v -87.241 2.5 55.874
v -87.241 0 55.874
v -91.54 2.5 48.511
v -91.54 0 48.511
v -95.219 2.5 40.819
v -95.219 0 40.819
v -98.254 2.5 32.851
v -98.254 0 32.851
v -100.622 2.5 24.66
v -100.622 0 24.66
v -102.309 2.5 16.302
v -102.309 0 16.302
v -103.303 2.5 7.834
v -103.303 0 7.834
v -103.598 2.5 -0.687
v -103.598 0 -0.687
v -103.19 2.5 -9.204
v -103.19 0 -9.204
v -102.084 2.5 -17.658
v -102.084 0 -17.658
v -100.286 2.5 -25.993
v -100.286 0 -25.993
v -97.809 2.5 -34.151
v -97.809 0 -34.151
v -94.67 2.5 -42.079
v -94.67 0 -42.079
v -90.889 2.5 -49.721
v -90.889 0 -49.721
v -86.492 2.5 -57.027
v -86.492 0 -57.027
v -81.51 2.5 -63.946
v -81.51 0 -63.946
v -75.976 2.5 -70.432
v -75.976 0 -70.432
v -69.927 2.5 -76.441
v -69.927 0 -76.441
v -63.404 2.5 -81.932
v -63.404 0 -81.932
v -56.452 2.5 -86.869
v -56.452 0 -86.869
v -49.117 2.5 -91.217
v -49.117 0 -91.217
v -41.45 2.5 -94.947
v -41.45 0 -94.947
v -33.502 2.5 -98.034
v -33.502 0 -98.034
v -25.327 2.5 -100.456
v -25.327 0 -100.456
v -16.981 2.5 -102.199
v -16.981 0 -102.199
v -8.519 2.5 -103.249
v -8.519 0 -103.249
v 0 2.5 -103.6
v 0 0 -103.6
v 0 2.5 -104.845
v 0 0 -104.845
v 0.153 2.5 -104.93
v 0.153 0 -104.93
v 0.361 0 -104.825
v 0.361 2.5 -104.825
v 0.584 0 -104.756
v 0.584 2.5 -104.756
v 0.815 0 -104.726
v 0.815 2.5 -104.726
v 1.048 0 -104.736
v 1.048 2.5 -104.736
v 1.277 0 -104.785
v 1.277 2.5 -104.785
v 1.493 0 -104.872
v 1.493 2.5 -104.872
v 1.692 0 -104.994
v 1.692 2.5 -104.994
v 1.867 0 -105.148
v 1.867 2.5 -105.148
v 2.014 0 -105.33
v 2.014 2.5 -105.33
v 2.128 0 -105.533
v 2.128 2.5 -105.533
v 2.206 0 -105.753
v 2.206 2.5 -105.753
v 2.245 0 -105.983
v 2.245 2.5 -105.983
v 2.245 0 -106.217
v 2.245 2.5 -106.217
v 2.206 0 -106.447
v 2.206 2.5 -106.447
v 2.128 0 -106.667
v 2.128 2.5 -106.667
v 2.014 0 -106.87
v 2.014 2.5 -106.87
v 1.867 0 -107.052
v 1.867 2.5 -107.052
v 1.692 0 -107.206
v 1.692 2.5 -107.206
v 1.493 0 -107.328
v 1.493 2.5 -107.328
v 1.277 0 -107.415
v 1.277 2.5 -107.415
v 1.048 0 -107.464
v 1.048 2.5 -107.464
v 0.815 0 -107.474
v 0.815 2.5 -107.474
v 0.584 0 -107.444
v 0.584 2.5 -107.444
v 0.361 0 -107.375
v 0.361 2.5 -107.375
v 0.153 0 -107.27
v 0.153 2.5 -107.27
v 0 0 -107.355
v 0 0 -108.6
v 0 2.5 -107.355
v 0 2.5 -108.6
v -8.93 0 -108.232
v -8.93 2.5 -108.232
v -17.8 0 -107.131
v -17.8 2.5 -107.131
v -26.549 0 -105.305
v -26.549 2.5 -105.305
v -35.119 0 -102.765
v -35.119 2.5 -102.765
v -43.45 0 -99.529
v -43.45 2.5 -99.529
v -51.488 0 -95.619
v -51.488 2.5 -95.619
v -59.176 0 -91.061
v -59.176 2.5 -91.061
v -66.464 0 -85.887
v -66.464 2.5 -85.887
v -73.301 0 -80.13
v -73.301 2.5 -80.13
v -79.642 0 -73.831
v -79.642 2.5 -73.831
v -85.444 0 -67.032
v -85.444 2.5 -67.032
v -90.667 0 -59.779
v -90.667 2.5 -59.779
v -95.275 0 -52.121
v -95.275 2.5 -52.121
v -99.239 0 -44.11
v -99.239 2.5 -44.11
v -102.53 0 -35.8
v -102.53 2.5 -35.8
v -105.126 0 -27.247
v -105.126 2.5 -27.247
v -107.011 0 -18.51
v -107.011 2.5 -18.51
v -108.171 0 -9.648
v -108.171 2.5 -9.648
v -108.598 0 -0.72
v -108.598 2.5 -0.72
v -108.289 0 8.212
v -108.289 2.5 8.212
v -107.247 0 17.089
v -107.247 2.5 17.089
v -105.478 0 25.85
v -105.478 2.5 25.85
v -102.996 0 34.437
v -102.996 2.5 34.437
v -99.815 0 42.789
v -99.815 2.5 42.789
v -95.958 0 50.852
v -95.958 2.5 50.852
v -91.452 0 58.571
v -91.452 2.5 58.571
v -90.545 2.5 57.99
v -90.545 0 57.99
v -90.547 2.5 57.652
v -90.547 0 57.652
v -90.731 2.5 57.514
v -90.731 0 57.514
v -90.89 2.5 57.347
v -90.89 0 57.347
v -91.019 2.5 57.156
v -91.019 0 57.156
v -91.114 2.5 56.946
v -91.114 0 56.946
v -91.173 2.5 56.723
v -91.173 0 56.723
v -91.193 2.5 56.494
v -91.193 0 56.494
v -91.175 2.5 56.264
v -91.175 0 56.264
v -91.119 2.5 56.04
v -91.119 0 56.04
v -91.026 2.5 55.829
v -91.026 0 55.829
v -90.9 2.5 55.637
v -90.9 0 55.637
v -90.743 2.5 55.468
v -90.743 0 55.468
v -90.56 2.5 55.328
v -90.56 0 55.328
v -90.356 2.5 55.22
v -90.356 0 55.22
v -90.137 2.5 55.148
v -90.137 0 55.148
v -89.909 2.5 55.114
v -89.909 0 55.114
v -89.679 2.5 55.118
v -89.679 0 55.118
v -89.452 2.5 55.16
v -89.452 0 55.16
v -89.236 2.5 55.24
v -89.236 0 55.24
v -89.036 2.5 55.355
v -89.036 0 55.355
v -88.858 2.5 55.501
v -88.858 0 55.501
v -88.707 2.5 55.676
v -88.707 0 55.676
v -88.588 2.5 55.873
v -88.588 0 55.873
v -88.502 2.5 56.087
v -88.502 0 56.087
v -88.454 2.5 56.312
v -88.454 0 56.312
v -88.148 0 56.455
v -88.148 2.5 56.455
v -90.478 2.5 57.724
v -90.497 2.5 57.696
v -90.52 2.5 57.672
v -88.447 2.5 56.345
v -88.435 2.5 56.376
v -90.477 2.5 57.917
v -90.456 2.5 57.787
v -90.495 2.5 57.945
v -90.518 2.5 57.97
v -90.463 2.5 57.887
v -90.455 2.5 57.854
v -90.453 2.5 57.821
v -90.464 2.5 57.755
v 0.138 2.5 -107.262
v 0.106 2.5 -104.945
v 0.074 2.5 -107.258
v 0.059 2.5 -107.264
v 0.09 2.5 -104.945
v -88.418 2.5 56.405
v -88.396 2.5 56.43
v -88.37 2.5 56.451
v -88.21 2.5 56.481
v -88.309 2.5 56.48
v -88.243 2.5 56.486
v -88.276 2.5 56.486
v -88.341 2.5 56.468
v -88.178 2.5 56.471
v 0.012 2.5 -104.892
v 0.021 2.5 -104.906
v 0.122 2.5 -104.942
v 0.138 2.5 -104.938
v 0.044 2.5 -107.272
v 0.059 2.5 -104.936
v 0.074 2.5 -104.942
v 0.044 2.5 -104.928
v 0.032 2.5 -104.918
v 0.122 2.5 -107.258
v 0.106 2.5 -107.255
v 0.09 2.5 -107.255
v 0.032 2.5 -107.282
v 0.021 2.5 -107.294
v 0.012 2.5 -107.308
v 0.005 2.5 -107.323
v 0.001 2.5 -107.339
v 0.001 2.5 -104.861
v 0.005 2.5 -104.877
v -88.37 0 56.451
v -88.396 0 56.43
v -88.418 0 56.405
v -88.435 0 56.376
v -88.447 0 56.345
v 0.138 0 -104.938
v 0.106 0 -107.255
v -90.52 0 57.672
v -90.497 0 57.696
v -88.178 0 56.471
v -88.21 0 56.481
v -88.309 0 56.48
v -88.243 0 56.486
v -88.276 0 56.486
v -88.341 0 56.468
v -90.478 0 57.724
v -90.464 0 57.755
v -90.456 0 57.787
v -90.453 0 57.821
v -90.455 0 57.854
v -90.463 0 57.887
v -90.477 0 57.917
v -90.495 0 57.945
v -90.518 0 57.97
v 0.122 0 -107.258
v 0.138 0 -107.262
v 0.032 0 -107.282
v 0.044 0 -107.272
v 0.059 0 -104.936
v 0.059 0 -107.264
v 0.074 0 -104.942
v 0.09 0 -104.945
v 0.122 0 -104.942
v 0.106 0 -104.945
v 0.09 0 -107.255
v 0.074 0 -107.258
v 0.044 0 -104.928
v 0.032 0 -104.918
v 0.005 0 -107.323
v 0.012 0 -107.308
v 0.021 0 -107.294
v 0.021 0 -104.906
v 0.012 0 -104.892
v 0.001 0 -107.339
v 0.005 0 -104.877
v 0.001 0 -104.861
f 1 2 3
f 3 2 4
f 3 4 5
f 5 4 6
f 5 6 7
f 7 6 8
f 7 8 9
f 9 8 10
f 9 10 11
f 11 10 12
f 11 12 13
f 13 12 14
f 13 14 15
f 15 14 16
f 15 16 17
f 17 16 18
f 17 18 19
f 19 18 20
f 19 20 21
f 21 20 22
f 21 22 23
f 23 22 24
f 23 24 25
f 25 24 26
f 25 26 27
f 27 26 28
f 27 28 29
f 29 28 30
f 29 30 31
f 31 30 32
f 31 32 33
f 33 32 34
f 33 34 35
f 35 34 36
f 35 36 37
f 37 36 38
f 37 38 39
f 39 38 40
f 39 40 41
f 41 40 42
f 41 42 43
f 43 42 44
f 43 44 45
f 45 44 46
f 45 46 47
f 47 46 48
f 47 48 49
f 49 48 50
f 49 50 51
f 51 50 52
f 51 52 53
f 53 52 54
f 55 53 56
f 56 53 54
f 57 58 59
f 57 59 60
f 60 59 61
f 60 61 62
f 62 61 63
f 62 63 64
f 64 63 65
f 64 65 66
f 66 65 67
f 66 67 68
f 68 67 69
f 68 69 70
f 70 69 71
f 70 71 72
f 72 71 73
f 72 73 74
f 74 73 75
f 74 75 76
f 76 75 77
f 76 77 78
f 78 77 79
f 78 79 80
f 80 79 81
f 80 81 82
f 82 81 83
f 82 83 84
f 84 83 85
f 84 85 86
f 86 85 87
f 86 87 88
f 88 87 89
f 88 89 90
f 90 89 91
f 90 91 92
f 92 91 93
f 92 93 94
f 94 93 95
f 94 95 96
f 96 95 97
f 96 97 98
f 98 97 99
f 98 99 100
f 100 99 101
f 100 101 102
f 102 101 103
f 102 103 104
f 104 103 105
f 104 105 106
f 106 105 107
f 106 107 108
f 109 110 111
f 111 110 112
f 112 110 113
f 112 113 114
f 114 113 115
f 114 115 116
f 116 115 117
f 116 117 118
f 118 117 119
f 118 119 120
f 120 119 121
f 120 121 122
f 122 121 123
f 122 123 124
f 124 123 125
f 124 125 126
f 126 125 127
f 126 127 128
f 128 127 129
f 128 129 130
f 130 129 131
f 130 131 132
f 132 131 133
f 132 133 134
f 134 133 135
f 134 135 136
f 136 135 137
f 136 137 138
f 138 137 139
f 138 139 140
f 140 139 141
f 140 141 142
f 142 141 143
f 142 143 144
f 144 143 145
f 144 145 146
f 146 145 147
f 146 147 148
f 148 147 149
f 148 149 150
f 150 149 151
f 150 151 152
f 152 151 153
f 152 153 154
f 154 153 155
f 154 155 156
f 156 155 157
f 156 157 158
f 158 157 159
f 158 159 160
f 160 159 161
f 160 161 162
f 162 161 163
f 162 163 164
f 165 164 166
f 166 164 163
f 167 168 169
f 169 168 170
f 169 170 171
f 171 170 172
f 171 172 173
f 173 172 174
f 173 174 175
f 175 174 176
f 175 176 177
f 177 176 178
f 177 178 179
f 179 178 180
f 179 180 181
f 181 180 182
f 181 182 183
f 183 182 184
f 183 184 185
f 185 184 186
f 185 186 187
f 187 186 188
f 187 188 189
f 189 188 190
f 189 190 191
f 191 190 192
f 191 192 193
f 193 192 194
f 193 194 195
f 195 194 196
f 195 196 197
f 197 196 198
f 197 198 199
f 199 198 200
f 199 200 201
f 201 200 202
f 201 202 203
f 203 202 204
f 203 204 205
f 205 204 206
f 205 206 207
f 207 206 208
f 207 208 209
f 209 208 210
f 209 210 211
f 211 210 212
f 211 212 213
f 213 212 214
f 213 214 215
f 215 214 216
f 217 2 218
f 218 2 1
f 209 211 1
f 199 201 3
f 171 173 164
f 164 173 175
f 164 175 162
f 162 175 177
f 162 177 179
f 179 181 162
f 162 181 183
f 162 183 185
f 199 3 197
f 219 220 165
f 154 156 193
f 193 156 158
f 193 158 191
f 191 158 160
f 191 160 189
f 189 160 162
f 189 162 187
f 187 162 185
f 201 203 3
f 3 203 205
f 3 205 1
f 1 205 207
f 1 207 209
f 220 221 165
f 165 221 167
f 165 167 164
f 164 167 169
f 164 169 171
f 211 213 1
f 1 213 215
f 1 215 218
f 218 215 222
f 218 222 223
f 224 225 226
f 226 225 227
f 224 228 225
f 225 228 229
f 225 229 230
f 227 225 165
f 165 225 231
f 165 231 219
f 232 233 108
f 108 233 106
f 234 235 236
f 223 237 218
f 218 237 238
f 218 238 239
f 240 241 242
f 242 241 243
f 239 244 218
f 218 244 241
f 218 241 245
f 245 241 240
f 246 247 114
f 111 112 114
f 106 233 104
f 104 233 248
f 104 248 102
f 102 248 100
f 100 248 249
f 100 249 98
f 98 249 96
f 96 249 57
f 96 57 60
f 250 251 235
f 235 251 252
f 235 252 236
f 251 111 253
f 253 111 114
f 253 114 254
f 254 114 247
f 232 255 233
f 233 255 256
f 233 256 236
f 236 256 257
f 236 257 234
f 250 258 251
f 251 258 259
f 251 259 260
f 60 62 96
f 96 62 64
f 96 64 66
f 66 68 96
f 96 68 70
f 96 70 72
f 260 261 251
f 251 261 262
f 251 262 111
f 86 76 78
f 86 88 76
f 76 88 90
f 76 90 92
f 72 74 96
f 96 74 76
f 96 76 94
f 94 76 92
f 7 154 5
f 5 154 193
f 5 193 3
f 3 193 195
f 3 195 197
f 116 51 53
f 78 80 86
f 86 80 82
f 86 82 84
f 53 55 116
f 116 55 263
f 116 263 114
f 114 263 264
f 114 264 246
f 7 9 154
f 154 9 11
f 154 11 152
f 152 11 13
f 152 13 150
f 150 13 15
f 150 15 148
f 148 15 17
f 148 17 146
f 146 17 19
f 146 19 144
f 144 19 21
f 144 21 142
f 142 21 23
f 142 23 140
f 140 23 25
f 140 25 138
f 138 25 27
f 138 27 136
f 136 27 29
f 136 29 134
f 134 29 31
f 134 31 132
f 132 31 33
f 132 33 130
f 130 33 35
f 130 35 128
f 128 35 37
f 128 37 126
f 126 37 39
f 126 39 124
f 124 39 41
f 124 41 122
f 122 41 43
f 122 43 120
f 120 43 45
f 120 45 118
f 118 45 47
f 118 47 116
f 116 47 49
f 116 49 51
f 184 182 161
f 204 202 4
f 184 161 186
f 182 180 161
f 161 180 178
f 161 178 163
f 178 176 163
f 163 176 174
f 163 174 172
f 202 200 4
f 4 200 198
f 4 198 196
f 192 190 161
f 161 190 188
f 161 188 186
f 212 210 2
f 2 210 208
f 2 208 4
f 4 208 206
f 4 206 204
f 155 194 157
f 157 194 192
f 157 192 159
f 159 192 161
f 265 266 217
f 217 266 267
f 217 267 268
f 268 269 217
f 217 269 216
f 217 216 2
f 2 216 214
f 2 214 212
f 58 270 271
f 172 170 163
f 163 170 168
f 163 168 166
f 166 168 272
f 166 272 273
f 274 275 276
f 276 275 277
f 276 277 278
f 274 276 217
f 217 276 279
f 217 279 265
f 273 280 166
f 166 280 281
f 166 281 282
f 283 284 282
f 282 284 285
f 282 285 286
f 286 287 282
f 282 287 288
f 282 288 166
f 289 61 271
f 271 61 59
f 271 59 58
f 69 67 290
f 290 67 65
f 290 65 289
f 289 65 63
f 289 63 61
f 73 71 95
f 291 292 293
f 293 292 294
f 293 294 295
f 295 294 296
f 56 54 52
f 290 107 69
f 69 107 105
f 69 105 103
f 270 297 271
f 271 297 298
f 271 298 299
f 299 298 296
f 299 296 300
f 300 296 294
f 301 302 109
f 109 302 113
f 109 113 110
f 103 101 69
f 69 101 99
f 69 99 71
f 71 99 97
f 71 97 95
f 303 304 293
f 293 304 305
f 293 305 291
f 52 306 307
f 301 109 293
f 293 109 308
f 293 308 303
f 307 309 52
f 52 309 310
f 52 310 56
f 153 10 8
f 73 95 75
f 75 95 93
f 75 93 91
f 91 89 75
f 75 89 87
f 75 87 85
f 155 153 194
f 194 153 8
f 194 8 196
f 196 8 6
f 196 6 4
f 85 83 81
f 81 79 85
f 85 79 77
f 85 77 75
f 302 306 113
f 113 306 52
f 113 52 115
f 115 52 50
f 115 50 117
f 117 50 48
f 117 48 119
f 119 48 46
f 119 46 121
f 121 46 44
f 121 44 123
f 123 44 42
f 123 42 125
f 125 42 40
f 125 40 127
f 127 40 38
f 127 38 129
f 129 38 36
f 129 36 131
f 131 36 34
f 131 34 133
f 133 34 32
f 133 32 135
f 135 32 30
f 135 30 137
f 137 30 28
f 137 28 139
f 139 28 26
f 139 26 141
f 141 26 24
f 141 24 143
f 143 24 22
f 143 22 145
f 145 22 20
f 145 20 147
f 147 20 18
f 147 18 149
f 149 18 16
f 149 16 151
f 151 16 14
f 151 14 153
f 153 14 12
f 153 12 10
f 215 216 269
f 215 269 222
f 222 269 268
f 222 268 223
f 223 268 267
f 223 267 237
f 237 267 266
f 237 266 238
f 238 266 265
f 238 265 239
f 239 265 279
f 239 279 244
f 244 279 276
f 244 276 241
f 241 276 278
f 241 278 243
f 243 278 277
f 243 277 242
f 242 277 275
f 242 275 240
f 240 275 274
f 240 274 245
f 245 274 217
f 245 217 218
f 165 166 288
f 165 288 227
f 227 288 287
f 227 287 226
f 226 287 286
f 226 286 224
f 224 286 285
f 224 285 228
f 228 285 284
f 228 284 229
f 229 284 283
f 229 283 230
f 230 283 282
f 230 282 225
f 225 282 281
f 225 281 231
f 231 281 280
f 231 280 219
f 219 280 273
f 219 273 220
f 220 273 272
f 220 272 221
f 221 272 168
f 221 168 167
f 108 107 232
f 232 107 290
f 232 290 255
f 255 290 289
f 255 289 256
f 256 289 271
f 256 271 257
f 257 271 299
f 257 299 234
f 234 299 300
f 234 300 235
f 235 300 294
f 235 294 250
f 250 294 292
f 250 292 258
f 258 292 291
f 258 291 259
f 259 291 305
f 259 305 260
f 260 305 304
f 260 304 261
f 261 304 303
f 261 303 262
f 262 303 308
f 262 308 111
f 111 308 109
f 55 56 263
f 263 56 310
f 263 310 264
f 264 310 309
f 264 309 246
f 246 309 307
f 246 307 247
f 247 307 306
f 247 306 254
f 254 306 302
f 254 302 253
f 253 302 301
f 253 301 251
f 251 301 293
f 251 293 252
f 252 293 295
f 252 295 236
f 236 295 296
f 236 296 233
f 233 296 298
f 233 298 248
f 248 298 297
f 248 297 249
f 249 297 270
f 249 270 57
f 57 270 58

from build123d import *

# Parameters (mm, degrees)
BOSS_EXTRUDE1_DEPTH = 2.5
FILLET1_R           = 0.2
FILLET2_R           = 0.1


with BuildPart() as part:
    # Sketch1 → Boss-Extrude1 (new body)
    with BuildSketch(Plane(origin=(0, 0, 0), x_dir=(1, 0, 0), z_dir=(0, 1, 0))):
        with BuildLine():
            Line((0, 103.6), (0, 105.039339828))
            ThreePointArc((0, 105.039339828), (2.25, 106.1), (0, 107.160660172))
            Line((0, 107.160660172), (0, 108.6))
            ThreePointArc((0, 108.6), (-95.275317005, 52.120763325), (-91.451606784, -58.571013451))
            Line((-91.451606784, -58.571013451), (-90.239544721, -57.794737277))
            ThreePointArc((-90.239544721, -57.794737277), (-90.559855065, -55.32797801), (-88.453189713, -56.650649963))
            Line((-88.453189713, -56.650649963), (-87.24112765, -55.874373789))
            ThreePointArc((-87.24112765, -55.874373789), (-90.888792281, 49.721096506), (0, 103.6))
        make_face()
    extrude(amount=BOSS_EXTRUDE1_DEPTH)

    # Fillet1
    fillet1_edges = [part.edges().sort_by_distance(p)[0] for p in [
        (-88.453189713, 1.25, 56.650649963),
        (-90.239544721, 1.25, 57.794737277),
    ]]
    fillet(fillet1_edges, radius=FILLET1_R)

    # Fillet2
    fillet2_edges = [part.edges().sort_by_distance(p)[0] for p in [
        (0, 1.25, -107.160660172),
        (0, 1.25, -105.039339828),
    ]]
    fillet(fillet2_edges, radius=FILLET2_R)


solid = part.part
